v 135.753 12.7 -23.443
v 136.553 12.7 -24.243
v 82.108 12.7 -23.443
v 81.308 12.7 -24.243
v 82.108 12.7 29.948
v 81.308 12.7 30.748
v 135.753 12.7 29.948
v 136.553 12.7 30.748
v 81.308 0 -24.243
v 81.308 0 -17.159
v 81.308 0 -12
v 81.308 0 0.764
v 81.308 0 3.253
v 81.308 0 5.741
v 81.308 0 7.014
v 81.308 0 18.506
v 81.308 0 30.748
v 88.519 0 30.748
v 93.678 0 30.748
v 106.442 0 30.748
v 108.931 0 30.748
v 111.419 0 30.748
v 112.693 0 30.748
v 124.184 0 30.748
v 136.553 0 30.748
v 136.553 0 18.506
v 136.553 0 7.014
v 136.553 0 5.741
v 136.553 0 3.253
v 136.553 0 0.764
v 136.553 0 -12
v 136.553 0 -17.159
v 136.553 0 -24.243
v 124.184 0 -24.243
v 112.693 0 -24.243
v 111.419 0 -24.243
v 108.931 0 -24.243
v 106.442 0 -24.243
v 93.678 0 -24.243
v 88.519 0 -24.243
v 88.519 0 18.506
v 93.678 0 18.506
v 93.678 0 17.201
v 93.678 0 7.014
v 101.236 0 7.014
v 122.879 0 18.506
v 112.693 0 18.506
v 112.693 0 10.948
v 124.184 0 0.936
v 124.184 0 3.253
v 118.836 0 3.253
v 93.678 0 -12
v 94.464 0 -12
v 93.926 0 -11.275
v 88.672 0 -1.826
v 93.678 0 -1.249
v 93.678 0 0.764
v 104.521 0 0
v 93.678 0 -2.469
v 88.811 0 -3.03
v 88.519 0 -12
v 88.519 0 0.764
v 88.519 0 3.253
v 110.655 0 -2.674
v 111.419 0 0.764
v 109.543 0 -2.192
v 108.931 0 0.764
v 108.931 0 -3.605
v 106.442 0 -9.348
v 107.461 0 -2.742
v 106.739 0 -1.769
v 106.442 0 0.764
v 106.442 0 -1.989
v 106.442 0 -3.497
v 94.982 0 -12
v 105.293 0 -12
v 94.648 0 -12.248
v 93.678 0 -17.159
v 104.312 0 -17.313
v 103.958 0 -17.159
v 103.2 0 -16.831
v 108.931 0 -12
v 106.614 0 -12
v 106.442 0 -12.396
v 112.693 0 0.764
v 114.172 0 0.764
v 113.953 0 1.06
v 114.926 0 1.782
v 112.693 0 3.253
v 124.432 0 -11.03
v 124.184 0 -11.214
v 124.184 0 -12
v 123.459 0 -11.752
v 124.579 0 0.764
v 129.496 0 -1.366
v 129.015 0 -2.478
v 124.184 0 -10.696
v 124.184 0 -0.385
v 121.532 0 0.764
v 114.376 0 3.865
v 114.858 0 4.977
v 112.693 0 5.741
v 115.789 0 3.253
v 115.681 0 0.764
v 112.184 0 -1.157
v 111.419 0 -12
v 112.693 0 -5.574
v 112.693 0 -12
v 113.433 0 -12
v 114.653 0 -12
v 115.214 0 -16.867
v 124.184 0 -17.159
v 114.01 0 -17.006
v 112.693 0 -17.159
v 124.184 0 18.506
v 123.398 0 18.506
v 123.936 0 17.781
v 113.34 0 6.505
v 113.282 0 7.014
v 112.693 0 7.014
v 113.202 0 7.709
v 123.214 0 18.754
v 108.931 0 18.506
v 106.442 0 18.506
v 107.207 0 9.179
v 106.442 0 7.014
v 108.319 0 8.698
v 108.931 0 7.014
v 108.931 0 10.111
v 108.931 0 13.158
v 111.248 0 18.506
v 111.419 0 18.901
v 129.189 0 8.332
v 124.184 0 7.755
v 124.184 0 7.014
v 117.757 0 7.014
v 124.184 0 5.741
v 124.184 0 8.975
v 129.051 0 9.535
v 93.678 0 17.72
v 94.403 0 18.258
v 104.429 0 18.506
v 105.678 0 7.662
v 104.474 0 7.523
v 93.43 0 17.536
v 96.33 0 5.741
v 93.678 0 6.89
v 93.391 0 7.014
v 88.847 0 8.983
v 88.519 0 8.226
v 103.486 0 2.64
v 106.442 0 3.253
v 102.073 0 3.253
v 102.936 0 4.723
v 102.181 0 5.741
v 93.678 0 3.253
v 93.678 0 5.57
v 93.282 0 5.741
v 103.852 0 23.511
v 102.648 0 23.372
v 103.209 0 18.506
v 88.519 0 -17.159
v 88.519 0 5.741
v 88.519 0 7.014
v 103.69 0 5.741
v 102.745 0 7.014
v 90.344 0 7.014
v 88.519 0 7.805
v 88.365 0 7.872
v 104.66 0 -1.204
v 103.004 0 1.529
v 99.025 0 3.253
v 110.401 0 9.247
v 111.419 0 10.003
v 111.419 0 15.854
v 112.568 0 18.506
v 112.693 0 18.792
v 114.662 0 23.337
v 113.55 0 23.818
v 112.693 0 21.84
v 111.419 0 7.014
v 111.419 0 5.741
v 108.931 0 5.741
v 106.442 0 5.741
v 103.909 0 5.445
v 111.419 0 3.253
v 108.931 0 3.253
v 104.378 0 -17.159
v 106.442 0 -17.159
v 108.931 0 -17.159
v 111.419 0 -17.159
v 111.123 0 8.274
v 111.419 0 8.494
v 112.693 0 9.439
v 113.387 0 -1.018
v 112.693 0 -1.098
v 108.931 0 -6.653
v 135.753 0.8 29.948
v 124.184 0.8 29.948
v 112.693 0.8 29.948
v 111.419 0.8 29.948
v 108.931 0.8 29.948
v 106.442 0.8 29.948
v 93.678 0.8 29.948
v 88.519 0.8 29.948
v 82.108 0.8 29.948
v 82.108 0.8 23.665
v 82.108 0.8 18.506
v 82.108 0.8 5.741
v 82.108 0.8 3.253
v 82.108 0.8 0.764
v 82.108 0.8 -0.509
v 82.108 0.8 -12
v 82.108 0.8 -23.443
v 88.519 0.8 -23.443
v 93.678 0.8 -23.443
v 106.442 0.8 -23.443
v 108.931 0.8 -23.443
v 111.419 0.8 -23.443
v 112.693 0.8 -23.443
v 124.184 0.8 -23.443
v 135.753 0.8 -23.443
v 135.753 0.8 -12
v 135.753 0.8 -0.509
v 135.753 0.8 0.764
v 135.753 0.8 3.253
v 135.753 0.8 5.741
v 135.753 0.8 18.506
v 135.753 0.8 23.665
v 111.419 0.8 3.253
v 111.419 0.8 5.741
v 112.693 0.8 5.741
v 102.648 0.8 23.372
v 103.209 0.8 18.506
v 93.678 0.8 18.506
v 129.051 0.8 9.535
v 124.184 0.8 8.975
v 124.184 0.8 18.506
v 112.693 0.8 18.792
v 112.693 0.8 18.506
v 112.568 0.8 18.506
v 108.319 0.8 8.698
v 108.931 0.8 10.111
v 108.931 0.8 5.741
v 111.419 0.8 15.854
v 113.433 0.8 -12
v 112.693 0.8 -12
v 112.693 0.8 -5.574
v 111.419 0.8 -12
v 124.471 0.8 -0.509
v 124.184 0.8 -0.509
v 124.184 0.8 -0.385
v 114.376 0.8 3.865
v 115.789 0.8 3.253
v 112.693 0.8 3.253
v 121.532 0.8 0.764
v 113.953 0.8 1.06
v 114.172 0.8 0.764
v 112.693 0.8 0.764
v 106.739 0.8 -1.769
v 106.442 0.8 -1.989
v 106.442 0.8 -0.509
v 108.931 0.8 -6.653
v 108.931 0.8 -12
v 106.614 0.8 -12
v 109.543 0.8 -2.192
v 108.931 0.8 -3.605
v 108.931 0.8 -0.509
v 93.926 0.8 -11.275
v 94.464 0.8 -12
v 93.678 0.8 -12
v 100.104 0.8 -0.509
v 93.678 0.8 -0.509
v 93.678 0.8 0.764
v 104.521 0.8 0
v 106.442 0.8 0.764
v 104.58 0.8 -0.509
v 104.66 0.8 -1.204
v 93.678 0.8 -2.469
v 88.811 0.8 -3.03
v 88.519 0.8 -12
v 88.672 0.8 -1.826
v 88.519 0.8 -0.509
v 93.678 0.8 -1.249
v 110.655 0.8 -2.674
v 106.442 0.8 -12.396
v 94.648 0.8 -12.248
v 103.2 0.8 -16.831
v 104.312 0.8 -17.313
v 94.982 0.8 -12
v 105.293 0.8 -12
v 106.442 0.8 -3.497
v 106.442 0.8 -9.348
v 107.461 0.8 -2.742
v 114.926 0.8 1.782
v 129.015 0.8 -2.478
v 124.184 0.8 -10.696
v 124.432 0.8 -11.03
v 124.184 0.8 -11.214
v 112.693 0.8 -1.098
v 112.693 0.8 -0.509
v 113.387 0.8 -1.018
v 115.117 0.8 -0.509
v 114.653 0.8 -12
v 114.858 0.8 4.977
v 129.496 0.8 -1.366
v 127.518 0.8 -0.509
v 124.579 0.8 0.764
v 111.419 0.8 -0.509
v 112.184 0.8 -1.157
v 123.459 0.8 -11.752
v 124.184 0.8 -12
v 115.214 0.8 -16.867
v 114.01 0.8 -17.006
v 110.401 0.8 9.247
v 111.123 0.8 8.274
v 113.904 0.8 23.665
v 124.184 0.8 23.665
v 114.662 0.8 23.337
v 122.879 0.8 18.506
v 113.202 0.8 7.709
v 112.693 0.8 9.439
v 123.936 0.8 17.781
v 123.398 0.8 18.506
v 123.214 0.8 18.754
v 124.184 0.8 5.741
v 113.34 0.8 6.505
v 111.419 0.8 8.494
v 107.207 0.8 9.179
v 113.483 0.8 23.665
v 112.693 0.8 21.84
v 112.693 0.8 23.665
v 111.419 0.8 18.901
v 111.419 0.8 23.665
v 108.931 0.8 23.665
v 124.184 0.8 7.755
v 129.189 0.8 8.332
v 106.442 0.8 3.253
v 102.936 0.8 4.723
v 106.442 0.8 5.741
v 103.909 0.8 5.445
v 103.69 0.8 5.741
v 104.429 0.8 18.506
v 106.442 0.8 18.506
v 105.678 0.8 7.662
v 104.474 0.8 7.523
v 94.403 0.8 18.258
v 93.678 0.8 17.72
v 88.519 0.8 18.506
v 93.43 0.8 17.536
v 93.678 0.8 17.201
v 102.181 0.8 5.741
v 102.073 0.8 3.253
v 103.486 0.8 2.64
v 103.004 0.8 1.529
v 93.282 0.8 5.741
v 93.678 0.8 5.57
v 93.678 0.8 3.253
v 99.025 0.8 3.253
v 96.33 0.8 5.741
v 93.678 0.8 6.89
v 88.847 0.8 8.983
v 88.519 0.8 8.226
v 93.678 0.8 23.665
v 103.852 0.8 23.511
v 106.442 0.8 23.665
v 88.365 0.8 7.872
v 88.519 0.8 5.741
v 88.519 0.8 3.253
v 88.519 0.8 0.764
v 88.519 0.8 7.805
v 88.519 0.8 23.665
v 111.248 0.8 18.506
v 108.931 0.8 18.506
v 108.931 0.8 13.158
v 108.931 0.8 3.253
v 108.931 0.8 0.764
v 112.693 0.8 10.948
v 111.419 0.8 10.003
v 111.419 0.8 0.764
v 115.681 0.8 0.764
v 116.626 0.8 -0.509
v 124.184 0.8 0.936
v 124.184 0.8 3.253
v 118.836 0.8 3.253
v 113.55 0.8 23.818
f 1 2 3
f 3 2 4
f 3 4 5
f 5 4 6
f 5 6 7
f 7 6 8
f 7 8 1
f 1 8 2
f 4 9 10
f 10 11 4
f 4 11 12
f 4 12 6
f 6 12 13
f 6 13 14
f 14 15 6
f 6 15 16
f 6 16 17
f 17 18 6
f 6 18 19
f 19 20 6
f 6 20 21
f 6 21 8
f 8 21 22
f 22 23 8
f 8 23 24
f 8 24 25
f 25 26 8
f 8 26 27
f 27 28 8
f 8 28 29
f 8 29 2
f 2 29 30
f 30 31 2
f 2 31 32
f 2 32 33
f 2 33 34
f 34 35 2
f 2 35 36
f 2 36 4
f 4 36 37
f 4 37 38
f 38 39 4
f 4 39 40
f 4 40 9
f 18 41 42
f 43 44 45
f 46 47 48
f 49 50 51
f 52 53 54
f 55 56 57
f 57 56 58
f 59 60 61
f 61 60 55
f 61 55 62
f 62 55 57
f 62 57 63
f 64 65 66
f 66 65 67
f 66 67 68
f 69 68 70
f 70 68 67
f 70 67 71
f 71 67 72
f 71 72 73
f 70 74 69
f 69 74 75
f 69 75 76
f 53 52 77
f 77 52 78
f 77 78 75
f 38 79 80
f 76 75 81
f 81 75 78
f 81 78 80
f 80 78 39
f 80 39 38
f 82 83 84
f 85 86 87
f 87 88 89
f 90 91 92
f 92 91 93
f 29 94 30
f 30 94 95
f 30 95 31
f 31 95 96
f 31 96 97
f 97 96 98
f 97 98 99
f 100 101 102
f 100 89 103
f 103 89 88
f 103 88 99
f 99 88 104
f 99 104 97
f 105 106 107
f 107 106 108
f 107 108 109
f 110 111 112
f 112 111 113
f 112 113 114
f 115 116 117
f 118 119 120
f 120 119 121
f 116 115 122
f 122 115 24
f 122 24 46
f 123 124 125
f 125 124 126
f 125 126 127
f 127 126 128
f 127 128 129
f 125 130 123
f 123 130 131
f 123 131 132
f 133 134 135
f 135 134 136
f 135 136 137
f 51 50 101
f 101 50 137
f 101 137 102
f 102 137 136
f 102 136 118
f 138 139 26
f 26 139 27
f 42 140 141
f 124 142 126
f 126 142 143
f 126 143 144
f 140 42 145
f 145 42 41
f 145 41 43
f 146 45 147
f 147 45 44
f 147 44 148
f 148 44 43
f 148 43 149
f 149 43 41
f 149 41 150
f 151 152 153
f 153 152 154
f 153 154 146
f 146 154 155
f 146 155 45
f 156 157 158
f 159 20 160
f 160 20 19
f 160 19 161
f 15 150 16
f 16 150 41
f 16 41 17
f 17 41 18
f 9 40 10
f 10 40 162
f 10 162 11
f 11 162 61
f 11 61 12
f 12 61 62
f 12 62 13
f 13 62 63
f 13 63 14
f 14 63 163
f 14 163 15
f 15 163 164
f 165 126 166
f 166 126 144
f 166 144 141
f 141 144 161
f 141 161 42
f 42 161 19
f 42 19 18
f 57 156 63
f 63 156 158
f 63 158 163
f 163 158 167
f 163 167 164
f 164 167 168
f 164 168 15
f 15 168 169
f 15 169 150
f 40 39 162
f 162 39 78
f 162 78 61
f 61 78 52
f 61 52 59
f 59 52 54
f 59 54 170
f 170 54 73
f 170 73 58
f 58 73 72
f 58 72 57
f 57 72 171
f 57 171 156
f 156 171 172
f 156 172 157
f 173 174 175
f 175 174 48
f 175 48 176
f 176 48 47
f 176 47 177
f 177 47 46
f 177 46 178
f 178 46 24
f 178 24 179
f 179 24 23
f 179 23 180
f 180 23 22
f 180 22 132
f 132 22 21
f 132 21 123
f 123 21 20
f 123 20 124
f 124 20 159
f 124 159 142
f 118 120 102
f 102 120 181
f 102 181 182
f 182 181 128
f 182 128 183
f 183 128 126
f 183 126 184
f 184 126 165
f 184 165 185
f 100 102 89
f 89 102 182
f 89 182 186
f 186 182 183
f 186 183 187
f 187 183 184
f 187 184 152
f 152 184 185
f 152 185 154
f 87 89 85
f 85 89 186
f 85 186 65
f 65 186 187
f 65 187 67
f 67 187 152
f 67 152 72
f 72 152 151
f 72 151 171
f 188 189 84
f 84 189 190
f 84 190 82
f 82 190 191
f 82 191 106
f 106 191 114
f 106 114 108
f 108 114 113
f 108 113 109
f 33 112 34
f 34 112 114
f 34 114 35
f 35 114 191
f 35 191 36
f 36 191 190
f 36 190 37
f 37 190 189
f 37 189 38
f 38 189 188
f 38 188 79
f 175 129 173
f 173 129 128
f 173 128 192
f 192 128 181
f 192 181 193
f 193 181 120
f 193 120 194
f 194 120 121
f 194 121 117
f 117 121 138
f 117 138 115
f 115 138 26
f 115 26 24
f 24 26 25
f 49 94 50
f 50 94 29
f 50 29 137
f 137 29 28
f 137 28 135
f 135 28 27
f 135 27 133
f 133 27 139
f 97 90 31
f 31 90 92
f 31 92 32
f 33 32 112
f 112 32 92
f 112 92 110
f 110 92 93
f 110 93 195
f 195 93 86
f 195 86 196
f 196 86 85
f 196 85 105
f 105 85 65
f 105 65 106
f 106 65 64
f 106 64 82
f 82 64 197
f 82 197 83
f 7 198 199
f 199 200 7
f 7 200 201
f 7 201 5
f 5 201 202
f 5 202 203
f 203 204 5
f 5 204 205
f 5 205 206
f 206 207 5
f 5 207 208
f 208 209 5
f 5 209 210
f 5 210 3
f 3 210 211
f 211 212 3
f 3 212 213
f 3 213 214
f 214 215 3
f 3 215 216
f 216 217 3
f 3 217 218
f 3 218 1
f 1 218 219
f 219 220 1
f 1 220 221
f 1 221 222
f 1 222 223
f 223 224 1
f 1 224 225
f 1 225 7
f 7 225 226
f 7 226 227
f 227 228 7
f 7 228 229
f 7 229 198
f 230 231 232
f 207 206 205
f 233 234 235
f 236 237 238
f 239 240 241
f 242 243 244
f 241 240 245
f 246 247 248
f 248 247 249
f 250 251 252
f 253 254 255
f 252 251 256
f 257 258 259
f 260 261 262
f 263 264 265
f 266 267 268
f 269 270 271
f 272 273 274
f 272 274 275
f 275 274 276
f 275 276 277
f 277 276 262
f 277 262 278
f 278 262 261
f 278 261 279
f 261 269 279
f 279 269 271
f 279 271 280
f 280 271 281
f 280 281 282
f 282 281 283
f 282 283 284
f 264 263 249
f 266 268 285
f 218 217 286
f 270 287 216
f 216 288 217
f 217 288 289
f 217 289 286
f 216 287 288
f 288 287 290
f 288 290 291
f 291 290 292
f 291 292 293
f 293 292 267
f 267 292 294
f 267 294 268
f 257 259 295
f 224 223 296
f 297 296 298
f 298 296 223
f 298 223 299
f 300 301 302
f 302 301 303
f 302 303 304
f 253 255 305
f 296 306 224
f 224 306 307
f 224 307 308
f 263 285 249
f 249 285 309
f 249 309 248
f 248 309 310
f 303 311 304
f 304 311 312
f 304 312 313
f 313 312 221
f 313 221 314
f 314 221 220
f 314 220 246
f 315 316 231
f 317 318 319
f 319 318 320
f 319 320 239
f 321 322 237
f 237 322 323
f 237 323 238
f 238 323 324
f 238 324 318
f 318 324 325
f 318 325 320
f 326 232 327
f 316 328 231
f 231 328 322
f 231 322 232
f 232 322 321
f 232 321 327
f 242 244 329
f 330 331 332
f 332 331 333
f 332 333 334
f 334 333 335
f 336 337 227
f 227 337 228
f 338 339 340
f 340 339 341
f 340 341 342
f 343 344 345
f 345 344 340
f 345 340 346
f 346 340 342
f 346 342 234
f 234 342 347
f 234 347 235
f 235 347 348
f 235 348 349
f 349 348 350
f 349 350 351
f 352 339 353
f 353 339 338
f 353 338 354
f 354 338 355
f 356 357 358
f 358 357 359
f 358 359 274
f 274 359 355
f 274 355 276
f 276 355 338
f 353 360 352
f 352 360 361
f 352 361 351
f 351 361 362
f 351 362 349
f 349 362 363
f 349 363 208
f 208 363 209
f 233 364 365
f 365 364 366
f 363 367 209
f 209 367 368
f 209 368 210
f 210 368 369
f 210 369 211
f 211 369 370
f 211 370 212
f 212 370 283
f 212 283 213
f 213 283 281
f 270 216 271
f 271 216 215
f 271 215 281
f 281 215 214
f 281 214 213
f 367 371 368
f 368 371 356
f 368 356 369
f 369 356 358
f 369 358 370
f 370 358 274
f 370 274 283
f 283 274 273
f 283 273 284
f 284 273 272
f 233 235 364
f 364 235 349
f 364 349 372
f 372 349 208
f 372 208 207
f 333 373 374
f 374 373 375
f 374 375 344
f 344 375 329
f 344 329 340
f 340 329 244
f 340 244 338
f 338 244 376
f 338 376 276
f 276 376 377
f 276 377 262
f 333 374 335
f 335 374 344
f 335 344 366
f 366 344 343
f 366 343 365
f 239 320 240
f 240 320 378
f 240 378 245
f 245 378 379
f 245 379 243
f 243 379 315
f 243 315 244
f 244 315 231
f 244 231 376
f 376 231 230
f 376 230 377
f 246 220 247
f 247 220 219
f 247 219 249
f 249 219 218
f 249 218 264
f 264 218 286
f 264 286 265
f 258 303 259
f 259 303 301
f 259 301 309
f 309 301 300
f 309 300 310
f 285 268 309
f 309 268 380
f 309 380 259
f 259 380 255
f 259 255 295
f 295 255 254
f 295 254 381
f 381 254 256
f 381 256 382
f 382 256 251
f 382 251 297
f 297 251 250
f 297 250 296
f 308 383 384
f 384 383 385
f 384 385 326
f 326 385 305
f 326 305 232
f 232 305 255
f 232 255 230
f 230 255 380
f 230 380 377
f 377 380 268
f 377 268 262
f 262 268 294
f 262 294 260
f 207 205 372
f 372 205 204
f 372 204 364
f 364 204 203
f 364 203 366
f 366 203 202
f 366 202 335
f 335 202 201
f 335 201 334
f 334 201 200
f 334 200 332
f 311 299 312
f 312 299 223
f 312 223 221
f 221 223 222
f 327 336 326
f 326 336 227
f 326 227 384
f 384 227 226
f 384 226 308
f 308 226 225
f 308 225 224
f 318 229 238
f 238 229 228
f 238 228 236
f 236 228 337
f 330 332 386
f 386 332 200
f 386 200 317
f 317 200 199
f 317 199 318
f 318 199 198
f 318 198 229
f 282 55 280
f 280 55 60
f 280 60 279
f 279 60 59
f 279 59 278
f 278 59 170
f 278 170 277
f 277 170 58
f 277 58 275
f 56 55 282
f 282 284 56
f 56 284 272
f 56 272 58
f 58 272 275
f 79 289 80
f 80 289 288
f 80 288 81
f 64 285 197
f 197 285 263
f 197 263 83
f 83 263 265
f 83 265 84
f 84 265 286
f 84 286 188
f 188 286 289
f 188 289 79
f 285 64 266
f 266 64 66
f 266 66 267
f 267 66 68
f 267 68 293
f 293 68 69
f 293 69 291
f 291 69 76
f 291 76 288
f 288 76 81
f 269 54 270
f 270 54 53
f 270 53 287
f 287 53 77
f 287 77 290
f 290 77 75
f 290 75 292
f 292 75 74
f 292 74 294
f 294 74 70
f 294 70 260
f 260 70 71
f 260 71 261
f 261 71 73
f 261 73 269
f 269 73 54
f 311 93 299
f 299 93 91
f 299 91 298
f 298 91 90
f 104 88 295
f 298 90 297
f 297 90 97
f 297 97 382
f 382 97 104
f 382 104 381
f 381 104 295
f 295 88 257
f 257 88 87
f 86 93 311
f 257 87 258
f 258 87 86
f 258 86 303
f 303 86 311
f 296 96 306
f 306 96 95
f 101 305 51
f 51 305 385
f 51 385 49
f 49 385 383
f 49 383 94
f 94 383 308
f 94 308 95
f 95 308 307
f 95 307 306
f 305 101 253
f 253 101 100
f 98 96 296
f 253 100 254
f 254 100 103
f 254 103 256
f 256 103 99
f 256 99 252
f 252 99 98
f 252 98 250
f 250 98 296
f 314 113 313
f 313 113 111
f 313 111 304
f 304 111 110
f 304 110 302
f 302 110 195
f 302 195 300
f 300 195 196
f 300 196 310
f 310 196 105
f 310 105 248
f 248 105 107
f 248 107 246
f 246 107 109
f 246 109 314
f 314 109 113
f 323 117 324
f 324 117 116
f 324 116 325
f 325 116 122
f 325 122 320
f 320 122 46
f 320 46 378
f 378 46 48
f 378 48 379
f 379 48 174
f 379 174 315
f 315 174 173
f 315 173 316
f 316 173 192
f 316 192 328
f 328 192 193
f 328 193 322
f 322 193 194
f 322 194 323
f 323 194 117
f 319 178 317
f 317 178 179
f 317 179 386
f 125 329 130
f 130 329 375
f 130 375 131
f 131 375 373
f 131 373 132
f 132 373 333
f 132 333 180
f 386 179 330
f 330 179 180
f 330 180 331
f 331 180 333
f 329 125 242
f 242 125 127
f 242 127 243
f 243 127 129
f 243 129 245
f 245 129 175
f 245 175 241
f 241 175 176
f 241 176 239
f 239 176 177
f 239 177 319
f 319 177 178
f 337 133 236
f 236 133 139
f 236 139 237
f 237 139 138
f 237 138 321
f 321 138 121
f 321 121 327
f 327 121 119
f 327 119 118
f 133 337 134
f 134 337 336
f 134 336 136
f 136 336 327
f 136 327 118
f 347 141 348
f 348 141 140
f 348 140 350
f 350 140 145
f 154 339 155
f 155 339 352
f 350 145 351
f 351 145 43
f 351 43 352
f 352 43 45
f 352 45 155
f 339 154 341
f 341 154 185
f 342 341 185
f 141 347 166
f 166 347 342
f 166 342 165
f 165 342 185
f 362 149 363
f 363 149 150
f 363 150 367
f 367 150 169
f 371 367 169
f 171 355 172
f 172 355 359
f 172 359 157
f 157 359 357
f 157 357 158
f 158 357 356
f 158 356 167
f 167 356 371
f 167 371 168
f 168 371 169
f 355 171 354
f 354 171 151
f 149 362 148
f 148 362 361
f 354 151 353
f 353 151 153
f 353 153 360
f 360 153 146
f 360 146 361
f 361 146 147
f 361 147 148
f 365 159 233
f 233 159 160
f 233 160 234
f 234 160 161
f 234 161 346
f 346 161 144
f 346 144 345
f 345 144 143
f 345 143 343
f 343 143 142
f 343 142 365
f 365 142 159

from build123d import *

# Parameters (mm, degrees)
SKETCH1_W           = 55.245
SKETCH1_H           = 54.991
BOSS_EXTRUDE1_DEPTH = 12.7
SKETCH2_W           = 53.645
SKETCH2_H           = 53.391
CUT_EXTRUDE1_DEPTH  = 11.9
CUT_EXTRUDE2_DEPTH  = 11.9


with BuildPart() as part:
    # Sketch1 → Boss-Extrude1 (new body)
    with BuildSketch(Plane(origin=(0, 0, 0), x_dir=(1, 0, 0), z_dir=(0, 1, 0))):
        with Locations((108.93085592, -3.252731307)):
            Rectangle(SKETCH1_W, SKETCH1_H)
    extrude(amount=BOSS_EXTRUDE1_DEPTH)

    # Sketch2 → Cut-Extrude1 (cut)
    with BuildSketch(Plane(origin=(0, 12.7, 0), x_dir=(1, 0, 0), z_dir=(0, 1, 0))):
        with Locations((108.93085592, -3.252731307)):
            Rectangle(SKETCH2_W, SKETCH2_H)
    extrude(amount=-CUT_EXTRUDE1_DEPTH, mode=Mode.SUBTRACT)

    # Sketch3 → Cut-Extrude2 (cut)
    with BuildSketch(Plane(origin=(0, 0.8, 0), x_dir=(1, 0, 0), z_dir=(0, 1, 0))):
        Polygon((88.811093554, 3.029967001), (104.660142286, 1.203676379), (104.521442297, 0), (88.672393566, 1.826290622), align=None)
        Polygon((94.647979747, 12.248126215), (107.460513263, 2.741987776), (106.73855736, 1.768923448), (93.926023844, 11.275061887), align=None)
        Polygon((104.311951076, 17.312843174), (110.654861369, 2.674019035), (109.543097052, 2.19229856), (103.20018676, 16.831122698), align=None)
        Polygon((115.213554228, 16.867031059), (113.387263606, 1.017982327), (112.183587227, 1.156682316), (114.009877849, 17.005731048), align=None)
        Polygon((124.431713442, 11.030144866), (114.925575003, -1.78238865), (113.952510675, -1.060432747), (123.458649114, 11.752100769), align=None)
        Polygon((129.496430401, 1.366173537), (114.857606263, -4.976736755), (114.375885787, -3.864972439), (129.014709925, 2.477937854), align=None)
        Polygon((129.050618286, -9.535429615), (113.201569555, -7.709138993), (113.340269543, -6.505462614), (129.189318275, -8.331753236), align=None)
        Polygon((123.213732093, -18.753588829), (110.401198577, -9.24745039), (111.12315448, -8.274386062), (123.935687997, -17.780524501), align=None)
        Polygon((113.549760764, -23.818305788), (107.206850472, -9.17948165), (108.318614788, -8.697761174), (114.661525081, -23.336585312), align=None)
        Polygon((102.648157613, -23.372493673), (104.474448234, -7.523444941), (105.678124613, -7.66214493), (103.851833991, -23.511193662), align=None)
        Polygon((93.429998399, -17.53560748), (102.936136838, -4.723073964), (103.909201165, -5.445029867), (94.403062726, -18.257563383), align=None)
        Polygon((88.365281439, -7.871636151), (103.004105578, -1.528725859), (103.485826053, -2.640490175), (88.847001915, -8.983400468), align=None)
    extrude(amount=-CUT_EXTRUDE2_DEPTH, mode=Mode.SUBTRACT)


solid = part.part
